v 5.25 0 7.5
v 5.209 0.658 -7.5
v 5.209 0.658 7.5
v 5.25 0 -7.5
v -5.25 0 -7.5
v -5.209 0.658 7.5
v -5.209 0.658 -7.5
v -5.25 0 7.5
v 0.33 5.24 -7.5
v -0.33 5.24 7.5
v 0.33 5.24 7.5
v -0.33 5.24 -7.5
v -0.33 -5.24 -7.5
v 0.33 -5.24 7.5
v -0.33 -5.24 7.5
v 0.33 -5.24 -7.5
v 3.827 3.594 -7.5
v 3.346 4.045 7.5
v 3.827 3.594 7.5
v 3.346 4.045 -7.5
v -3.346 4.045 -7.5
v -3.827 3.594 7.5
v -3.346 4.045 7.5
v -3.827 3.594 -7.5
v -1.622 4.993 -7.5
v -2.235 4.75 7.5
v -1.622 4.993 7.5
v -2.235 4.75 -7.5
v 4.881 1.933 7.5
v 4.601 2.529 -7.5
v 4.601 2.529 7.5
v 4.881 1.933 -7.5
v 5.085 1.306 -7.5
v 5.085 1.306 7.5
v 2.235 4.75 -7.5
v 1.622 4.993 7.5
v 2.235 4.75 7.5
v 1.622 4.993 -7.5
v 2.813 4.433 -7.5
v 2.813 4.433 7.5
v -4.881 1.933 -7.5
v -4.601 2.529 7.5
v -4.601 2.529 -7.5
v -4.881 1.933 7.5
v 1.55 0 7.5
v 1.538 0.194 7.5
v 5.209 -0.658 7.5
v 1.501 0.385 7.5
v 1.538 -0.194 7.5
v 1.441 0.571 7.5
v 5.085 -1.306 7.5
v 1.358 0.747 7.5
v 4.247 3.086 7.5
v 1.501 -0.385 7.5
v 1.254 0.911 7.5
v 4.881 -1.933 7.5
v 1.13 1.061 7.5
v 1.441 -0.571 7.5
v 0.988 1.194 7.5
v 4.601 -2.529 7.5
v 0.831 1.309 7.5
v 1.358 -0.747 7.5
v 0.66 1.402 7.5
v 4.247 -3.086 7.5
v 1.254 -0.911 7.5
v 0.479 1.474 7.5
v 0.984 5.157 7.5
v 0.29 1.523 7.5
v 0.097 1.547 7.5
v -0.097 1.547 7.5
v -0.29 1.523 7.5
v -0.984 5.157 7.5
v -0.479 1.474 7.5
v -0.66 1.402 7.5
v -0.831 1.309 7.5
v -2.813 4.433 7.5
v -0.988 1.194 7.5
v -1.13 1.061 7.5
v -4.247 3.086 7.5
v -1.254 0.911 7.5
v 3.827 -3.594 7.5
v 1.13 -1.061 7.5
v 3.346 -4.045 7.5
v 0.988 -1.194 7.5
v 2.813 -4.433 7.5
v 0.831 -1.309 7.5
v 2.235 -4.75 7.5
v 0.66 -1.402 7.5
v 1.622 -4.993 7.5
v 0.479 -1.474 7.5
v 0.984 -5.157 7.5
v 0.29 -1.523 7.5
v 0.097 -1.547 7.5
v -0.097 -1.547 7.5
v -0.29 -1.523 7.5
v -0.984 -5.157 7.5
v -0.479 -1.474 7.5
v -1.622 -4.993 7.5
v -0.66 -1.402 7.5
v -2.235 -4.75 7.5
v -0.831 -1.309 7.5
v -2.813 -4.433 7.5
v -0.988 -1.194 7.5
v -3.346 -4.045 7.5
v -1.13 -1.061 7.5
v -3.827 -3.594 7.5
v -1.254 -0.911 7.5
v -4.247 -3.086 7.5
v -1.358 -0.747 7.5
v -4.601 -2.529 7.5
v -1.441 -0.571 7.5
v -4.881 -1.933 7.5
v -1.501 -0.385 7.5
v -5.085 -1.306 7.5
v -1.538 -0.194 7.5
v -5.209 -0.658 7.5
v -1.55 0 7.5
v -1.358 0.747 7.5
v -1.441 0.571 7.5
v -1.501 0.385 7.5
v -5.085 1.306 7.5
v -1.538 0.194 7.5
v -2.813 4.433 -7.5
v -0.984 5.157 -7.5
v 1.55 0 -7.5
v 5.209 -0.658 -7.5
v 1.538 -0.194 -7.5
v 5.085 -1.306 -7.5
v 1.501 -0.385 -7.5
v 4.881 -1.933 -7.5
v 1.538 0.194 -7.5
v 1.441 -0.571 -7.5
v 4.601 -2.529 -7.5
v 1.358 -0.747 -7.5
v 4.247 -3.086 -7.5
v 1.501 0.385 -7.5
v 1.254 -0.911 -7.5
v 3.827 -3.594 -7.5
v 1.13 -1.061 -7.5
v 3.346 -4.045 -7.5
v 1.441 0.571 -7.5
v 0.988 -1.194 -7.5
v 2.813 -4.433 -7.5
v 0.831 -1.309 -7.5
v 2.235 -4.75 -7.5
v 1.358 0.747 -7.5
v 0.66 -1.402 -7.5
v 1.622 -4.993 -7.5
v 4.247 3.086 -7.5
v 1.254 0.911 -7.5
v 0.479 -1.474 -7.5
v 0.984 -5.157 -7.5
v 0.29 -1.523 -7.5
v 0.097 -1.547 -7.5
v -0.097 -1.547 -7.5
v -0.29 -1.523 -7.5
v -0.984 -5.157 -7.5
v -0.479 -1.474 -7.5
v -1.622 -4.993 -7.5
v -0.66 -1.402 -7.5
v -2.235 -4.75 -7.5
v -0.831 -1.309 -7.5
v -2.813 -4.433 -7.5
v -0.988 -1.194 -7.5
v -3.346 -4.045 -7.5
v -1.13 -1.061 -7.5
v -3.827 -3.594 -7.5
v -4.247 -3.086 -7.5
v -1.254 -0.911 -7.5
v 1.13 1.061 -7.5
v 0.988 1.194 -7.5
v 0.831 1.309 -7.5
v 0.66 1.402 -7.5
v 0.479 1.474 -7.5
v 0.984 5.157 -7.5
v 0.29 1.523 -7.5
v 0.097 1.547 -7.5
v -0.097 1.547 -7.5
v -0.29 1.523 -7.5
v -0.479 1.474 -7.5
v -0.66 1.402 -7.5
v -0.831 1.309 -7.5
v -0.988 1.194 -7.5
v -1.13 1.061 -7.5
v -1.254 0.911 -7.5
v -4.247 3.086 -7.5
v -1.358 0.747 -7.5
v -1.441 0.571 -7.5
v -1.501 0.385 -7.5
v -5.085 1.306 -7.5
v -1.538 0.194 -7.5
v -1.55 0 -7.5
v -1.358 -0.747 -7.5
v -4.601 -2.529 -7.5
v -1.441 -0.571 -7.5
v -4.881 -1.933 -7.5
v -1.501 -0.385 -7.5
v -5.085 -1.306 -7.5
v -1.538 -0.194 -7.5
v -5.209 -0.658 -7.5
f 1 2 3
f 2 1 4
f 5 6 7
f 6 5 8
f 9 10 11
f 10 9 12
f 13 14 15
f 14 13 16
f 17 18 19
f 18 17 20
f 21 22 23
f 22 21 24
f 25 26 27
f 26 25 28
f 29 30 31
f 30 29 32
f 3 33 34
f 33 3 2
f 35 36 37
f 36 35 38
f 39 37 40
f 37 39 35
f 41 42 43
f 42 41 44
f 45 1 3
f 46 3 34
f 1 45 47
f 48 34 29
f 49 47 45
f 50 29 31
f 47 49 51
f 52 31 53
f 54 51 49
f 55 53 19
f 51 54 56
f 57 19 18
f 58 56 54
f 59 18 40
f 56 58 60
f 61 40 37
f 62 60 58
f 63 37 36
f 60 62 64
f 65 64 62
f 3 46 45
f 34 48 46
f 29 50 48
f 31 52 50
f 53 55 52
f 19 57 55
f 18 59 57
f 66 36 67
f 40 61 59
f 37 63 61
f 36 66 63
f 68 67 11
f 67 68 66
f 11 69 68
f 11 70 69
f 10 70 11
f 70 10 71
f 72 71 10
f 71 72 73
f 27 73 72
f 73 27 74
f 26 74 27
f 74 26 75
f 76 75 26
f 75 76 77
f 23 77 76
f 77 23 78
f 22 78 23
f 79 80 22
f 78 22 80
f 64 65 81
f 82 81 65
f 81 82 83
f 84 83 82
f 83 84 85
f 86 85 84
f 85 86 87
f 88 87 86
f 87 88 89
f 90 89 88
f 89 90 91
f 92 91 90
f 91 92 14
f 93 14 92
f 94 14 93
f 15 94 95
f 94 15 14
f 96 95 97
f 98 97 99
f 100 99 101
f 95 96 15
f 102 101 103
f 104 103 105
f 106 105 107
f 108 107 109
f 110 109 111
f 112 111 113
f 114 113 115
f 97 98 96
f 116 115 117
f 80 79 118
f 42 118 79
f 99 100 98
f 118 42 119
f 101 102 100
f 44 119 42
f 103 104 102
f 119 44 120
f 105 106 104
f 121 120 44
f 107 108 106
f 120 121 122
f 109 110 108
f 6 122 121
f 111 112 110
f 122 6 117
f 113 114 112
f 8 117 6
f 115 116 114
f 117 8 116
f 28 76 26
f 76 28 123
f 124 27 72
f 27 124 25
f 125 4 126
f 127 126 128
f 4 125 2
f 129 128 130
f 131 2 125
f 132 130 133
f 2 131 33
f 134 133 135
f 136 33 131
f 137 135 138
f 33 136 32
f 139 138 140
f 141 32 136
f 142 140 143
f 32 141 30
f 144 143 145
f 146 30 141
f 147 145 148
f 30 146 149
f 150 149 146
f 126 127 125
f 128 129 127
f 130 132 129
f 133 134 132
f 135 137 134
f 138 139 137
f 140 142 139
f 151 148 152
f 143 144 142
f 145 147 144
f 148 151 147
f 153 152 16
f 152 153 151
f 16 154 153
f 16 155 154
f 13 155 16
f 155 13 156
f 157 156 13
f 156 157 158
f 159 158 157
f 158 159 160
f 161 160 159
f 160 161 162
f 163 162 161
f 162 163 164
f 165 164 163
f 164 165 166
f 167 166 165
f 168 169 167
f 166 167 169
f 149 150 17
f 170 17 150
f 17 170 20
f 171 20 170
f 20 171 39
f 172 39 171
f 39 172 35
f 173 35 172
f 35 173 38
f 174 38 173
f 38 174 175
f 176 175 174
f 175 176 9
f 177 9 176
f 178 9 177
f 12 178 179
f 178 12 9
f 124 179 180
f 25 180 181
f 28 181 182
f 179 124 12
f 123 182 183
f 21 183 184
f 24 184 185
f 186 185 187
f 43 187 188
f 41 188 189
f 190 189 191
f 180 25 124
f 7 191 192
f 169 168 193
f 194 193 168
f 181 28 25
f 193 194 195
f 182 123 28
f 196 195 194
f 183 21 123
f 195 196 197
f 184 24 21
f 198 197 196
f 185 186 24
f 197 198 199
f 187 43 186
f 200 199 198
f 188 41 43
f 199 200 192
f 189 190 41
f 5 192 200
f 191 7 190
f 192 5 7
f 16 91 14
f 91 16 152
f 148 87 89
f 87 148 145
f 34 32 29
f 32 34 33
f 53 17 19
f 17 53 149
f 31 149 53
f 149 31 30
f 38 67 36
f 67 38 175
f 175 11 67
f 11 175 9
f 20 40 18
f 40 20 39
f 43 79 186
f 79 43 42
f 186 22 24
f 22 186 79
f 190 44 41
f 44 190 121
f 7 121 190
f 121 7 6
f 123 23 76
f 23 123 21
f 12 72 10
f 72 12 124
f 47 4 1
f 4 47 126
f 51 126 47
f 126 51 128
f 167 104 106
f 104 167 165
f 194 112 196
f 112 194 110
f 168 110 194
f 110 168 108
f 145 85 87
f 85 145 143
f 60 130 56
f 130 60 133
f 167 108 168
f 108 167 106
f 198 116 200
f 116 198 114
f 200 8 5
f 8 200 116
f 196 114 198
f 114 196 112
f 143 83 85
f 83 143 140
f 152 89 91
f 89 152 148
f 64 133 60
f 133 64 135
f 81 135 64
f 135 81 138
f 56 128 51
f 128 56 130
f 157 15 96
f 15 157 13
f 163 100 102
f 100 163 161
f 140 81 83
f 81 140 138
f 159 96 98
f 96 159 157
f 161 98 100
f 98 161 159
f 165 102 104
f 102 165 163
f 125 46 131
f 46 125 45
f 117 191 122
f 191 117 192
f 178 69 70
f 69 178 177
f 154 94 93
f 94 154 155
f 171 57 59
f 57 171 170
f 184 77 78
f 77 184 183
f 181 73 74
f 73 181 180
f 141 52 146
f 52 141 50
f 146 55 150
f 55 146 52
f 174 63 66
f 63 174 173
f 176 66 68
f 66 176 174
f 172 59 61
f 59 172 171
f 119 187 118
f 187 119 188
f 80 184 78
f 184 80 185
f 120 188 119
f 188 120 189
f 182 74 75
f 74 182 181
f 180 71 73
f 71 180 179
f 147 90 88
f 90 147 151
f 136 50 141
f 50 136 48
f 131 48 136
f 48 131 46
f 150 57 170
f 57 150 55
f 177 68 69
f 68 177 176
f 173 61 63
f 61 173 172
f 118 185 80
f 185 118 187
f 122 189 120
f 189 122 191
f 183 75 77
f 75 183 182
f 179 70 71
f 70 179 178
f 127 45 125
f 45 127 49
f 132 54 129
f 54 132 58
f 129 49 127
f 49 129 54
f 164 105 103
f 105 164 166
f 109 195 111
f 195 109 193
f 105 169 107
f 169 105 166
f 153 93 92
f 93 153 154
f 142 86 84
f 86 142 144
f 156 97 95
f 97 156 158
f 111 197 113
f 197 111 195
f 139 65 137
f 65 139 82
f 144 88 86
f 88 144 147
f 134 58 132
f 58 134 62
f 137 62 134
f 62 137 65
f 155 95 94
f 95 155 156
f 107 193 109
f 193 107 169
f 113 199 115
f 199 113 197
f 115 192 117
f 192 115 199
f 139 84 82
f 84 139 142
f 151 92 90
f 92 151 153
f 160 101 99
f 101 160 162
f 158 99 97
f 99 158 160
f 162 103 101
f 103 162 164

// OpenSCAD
$fn = 50;


difference() {
	union() {
		translate(v = [0, 0, -7.5000000000]) {
			cylinder(h = 15, r = 5.2500000000);
		}
	}
	union() {
		translate(v = [0, 0, -100.0000000000]) {
			cylinder(h = 200, r = 1.5500000000);
		}
	}
}
